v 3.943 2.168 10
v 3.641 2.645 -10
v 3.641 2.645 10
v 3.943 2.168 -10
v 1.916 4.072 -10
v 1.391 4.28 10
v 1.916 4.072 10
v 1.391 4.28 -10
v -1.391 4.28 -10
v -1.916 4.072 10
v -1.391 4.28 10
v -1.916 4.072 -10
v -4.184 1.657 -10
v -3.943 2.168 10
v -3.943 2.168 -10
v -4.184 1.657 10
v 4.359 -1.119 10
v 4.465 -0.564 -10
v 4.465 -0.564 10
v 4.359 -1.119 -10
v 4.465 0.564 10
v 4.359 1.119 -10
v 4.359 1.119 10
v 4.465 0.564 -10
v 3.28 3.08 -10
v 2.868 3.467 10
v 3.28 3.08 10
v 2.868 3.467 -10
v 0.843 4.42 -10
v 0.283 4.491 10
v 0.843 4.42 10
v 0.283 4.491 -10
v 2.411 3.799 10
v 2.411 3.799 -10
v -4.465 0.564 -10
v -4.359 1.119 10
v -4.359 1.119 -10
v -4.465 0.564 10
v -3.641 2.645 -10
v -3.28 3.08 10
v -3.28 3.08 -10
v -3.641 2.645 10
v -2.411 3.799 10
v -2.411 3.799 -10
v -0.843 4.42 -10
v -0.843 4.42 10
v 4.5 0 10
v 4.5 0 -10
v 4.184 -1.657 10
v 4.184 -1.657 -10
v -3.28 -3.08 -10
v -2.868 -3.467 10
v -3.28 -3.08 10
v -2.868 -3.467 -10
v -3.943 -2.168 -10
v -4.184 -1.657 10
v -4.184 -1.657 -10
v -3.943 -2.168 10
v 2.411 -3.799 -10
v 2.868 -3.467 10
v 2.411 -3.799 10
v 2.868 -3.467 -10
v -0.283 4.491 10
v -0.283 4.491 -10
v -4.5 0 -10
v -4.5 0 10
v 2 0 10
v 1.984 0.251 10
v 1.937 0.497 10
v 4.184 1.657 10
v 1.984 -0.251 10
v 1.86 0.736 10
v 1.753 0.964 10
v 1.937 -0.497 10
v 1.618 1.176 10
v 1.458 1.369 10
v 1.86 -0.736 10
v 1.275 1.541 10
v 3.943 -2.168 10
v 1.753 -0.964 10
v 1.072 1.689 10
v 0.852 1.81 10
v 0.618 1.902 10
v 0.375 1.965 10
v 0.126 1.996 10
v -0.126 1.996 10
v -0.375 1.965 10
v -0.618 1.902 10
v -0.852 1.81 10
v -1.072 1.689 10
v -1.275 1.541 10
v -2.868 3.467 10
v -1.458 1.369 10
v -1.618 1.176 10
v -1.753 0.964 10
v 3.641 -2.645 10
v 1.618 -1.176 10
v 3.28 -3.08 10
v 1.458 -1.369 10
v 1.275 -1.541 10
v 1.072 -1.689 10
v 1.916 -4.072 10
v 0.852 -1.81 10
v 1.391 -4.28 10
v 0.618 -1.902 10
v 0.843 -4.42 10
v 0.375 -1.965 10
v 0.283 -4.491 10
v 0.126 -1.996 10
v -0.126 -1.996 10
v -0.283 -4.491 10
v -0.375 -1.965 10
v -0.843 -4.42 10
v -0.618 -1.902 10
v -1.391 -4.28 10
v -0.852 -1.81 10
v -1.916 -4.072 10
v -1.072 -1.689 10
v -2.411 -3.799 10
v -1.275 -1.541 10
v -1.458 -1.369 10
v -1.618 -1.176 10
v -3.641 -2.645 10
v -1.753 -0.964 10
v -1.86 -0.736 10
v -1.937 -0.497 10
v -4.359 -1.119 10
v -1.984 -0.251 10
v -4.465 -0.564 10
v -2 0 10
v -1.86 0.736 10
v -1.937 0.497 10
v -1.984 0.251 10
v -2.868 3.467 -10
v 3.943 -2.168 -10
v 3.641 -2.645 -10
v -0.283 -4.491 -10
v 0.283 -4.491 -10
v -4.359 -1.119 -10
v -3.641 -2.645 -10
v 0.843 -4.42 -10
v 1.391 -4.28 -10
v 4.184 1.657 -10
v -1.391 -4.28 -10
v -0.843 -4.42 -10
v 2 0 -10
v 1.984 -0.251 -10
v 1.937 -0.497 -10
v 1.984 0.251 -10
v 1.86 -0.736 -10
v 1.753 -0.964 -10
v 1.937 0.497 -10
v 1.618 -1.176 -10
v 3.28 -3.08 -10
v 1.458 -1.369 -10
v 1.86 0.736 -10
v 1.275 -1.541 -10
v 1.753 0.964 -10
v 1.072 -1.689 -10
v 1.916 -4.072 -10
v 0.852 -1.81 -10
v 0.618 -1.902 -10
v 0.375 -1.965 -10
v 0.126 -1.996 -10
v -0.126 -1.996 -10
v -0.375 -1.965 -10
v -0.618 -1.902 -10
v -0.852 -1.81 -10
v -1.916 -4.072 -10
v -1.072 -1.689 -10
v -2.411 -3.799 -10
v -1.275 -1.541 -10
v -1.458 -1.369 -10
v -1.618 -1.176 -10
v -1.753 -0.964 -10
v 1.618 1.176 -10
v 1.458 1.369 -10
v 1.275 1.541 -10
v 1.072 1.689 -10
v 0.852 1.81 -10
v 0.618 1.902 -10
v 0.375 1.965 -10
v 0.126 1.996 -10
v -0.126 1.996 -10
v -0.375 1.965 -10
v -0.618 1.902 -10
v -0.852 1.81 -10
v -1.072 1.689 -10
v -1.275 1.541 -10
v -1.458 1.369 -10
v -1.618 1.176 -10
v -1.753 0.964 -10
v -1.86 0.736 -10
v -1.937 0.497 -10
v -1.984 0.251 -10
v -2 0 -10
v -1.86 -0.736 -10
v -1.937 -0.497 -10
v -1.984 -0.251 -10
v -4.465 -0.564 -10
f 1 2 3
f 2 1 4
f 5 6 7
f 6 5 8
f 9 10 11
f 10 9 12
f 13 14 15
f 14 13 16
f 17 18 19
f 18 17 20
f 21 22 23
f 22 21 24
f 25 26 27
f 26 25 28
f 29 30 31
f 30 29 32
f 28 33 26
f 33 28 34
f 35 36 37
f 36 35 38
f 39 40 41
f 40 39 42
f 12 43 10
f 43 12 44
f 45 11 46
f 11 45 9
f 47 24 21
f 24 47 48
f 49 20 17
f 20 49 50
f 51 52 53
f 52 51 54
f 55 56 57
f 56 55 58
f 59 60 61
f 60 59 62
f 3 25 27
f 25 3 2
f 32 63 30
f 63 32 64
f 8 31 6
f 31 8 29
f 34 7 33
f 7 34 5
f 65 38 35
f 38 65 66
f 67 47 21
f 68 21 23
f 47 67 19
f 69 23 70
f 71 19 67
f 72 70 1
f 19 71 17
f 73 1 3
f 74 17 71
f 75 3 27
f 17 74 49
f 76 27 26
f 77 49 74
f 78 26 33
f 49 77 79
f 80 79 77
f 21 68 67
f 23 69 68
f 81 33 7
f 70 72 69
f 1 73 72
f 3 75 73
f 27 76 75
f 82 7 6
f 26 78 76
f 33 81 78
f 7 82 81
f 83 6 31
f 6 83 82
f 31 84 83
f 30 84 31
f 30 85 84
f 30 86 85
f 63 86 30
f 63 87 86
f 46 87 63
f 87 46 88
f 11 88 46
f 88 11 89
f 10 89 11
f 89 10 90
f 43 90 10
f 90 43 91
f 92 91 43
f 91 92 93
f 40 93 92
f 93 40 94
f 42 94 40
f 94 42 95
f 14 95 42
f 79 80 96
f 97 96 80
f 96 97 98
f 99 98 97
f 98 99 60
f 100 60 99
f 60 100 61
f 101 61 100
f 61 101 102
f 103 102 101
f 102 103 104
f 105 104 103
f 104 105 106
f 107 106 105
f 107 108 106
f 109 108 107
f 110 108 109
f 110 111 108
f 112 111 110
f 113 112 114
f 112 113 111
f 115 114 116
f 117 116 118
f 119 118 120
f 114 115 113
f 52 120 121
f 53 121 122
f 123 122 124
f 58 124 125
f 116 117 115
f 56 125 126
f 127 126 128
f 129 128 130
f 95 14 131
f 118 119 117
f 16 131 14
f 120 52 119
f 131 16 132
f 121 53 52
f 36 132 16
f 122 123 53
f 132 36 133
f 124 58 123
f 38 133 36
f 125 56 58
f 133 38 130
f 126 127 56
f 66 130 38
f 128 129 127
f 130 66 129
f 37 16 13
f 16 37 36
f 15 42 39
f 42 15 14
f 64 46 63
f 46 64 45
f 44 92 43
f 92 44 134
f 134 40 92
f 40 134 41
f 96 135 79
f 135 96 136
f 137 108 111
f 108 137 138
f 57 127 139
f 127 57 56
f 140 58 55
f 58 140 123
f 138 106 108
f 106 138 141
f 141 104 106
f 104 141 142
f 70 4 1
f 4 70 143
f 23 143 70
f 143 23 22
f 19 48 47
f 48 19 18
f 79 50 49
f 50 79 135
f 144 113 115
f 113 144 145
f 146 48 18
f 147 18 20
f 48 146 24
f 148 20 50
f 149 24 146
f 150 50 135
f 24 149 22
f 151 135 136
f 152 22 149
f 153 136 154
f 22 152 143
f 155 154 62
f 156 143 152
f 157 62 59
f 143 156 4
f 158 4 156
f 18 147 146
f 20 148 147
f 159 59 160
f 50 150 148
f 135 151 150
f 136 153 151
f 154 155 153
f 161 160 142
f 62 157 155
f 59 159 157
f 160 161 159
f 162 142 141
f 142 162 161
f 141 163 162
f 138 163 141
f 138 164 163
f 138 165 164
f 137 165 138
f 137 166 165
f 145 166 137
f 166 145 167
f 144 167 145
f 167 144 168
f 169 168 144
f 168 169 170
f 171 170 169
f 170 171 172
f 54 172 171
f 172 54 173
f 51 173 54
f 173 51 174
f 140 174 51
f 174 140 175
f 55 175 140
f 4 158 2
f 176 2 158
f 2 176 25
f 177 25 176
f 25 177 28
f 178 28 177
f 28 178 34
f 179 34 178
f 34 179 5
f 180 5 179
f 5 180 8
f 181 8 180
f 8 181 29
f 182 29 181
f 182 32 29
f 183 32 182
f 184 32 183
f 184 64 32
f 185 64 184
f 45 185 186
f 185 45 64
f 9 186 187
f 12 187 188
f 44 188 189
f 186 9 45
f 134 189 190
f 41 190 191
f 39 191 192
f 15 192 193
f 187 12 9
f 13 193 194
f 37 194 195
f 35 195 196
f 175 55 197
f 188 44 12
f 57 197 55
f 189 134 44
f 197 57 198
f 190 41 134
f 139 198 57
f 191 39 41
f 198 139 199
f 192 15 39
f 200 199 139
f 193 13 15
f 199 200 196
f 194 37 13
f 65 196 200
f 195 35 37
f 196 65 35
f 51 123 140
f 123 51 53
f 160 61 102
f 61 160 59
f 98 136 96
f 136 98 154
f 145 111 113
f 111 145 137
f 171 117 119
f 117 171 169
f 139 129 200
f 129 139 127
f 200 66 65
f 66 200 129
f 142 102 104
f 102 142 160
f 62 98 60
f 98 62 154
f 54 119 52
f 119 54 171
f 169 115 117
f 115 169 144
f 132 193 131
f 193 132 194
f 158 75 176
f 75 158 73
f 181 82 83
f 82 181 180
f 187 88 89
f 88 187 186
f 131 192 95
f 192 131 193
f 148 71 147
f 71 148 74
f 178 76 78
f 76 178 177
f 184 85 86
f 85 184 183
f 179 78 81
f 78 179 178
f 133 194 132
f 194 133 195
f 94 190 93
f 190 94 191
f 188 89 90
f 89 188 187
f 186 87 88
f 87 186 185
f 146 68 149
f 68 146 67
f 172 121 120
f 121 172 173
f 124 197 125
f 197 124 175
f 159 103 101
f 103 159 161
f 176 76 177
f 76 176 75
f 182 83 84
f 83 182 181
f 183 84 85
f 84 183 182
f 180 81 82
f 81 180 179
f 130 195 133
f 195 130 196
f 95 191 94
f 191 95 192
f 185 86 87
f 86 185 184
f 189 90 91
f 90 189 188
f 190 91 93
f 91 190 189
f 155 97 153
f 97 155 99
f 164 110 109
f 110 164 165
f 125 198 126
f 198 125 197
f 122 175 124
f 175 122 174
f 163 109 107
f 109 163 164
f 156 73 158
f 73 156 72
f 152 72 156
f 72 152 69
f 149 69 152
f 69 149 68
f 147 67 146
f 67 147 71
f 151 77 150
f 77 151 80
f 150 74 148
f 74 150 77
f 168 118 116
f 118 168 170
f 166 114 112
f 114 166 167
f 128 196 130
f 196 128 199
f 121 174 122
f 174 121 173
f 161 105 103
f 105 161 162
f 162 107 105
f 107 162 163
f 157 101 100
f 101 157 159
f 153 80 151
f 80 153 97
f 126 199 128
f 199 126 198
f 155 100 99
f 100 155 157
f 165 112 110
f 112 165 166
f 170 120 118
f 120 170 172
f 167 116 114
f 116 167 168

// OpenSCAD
$fn = 50;


difference() {
	union() {
		translate(v = [0, 0, -10.0000000000]) {
			cylinder(h = 20, r = 4.5000000000);
		}
	}
	union() {
		translate(v = [0, 0, -100.0000000000]) {
			cylinder(h = 200, r = 2);
		}
	}
}
